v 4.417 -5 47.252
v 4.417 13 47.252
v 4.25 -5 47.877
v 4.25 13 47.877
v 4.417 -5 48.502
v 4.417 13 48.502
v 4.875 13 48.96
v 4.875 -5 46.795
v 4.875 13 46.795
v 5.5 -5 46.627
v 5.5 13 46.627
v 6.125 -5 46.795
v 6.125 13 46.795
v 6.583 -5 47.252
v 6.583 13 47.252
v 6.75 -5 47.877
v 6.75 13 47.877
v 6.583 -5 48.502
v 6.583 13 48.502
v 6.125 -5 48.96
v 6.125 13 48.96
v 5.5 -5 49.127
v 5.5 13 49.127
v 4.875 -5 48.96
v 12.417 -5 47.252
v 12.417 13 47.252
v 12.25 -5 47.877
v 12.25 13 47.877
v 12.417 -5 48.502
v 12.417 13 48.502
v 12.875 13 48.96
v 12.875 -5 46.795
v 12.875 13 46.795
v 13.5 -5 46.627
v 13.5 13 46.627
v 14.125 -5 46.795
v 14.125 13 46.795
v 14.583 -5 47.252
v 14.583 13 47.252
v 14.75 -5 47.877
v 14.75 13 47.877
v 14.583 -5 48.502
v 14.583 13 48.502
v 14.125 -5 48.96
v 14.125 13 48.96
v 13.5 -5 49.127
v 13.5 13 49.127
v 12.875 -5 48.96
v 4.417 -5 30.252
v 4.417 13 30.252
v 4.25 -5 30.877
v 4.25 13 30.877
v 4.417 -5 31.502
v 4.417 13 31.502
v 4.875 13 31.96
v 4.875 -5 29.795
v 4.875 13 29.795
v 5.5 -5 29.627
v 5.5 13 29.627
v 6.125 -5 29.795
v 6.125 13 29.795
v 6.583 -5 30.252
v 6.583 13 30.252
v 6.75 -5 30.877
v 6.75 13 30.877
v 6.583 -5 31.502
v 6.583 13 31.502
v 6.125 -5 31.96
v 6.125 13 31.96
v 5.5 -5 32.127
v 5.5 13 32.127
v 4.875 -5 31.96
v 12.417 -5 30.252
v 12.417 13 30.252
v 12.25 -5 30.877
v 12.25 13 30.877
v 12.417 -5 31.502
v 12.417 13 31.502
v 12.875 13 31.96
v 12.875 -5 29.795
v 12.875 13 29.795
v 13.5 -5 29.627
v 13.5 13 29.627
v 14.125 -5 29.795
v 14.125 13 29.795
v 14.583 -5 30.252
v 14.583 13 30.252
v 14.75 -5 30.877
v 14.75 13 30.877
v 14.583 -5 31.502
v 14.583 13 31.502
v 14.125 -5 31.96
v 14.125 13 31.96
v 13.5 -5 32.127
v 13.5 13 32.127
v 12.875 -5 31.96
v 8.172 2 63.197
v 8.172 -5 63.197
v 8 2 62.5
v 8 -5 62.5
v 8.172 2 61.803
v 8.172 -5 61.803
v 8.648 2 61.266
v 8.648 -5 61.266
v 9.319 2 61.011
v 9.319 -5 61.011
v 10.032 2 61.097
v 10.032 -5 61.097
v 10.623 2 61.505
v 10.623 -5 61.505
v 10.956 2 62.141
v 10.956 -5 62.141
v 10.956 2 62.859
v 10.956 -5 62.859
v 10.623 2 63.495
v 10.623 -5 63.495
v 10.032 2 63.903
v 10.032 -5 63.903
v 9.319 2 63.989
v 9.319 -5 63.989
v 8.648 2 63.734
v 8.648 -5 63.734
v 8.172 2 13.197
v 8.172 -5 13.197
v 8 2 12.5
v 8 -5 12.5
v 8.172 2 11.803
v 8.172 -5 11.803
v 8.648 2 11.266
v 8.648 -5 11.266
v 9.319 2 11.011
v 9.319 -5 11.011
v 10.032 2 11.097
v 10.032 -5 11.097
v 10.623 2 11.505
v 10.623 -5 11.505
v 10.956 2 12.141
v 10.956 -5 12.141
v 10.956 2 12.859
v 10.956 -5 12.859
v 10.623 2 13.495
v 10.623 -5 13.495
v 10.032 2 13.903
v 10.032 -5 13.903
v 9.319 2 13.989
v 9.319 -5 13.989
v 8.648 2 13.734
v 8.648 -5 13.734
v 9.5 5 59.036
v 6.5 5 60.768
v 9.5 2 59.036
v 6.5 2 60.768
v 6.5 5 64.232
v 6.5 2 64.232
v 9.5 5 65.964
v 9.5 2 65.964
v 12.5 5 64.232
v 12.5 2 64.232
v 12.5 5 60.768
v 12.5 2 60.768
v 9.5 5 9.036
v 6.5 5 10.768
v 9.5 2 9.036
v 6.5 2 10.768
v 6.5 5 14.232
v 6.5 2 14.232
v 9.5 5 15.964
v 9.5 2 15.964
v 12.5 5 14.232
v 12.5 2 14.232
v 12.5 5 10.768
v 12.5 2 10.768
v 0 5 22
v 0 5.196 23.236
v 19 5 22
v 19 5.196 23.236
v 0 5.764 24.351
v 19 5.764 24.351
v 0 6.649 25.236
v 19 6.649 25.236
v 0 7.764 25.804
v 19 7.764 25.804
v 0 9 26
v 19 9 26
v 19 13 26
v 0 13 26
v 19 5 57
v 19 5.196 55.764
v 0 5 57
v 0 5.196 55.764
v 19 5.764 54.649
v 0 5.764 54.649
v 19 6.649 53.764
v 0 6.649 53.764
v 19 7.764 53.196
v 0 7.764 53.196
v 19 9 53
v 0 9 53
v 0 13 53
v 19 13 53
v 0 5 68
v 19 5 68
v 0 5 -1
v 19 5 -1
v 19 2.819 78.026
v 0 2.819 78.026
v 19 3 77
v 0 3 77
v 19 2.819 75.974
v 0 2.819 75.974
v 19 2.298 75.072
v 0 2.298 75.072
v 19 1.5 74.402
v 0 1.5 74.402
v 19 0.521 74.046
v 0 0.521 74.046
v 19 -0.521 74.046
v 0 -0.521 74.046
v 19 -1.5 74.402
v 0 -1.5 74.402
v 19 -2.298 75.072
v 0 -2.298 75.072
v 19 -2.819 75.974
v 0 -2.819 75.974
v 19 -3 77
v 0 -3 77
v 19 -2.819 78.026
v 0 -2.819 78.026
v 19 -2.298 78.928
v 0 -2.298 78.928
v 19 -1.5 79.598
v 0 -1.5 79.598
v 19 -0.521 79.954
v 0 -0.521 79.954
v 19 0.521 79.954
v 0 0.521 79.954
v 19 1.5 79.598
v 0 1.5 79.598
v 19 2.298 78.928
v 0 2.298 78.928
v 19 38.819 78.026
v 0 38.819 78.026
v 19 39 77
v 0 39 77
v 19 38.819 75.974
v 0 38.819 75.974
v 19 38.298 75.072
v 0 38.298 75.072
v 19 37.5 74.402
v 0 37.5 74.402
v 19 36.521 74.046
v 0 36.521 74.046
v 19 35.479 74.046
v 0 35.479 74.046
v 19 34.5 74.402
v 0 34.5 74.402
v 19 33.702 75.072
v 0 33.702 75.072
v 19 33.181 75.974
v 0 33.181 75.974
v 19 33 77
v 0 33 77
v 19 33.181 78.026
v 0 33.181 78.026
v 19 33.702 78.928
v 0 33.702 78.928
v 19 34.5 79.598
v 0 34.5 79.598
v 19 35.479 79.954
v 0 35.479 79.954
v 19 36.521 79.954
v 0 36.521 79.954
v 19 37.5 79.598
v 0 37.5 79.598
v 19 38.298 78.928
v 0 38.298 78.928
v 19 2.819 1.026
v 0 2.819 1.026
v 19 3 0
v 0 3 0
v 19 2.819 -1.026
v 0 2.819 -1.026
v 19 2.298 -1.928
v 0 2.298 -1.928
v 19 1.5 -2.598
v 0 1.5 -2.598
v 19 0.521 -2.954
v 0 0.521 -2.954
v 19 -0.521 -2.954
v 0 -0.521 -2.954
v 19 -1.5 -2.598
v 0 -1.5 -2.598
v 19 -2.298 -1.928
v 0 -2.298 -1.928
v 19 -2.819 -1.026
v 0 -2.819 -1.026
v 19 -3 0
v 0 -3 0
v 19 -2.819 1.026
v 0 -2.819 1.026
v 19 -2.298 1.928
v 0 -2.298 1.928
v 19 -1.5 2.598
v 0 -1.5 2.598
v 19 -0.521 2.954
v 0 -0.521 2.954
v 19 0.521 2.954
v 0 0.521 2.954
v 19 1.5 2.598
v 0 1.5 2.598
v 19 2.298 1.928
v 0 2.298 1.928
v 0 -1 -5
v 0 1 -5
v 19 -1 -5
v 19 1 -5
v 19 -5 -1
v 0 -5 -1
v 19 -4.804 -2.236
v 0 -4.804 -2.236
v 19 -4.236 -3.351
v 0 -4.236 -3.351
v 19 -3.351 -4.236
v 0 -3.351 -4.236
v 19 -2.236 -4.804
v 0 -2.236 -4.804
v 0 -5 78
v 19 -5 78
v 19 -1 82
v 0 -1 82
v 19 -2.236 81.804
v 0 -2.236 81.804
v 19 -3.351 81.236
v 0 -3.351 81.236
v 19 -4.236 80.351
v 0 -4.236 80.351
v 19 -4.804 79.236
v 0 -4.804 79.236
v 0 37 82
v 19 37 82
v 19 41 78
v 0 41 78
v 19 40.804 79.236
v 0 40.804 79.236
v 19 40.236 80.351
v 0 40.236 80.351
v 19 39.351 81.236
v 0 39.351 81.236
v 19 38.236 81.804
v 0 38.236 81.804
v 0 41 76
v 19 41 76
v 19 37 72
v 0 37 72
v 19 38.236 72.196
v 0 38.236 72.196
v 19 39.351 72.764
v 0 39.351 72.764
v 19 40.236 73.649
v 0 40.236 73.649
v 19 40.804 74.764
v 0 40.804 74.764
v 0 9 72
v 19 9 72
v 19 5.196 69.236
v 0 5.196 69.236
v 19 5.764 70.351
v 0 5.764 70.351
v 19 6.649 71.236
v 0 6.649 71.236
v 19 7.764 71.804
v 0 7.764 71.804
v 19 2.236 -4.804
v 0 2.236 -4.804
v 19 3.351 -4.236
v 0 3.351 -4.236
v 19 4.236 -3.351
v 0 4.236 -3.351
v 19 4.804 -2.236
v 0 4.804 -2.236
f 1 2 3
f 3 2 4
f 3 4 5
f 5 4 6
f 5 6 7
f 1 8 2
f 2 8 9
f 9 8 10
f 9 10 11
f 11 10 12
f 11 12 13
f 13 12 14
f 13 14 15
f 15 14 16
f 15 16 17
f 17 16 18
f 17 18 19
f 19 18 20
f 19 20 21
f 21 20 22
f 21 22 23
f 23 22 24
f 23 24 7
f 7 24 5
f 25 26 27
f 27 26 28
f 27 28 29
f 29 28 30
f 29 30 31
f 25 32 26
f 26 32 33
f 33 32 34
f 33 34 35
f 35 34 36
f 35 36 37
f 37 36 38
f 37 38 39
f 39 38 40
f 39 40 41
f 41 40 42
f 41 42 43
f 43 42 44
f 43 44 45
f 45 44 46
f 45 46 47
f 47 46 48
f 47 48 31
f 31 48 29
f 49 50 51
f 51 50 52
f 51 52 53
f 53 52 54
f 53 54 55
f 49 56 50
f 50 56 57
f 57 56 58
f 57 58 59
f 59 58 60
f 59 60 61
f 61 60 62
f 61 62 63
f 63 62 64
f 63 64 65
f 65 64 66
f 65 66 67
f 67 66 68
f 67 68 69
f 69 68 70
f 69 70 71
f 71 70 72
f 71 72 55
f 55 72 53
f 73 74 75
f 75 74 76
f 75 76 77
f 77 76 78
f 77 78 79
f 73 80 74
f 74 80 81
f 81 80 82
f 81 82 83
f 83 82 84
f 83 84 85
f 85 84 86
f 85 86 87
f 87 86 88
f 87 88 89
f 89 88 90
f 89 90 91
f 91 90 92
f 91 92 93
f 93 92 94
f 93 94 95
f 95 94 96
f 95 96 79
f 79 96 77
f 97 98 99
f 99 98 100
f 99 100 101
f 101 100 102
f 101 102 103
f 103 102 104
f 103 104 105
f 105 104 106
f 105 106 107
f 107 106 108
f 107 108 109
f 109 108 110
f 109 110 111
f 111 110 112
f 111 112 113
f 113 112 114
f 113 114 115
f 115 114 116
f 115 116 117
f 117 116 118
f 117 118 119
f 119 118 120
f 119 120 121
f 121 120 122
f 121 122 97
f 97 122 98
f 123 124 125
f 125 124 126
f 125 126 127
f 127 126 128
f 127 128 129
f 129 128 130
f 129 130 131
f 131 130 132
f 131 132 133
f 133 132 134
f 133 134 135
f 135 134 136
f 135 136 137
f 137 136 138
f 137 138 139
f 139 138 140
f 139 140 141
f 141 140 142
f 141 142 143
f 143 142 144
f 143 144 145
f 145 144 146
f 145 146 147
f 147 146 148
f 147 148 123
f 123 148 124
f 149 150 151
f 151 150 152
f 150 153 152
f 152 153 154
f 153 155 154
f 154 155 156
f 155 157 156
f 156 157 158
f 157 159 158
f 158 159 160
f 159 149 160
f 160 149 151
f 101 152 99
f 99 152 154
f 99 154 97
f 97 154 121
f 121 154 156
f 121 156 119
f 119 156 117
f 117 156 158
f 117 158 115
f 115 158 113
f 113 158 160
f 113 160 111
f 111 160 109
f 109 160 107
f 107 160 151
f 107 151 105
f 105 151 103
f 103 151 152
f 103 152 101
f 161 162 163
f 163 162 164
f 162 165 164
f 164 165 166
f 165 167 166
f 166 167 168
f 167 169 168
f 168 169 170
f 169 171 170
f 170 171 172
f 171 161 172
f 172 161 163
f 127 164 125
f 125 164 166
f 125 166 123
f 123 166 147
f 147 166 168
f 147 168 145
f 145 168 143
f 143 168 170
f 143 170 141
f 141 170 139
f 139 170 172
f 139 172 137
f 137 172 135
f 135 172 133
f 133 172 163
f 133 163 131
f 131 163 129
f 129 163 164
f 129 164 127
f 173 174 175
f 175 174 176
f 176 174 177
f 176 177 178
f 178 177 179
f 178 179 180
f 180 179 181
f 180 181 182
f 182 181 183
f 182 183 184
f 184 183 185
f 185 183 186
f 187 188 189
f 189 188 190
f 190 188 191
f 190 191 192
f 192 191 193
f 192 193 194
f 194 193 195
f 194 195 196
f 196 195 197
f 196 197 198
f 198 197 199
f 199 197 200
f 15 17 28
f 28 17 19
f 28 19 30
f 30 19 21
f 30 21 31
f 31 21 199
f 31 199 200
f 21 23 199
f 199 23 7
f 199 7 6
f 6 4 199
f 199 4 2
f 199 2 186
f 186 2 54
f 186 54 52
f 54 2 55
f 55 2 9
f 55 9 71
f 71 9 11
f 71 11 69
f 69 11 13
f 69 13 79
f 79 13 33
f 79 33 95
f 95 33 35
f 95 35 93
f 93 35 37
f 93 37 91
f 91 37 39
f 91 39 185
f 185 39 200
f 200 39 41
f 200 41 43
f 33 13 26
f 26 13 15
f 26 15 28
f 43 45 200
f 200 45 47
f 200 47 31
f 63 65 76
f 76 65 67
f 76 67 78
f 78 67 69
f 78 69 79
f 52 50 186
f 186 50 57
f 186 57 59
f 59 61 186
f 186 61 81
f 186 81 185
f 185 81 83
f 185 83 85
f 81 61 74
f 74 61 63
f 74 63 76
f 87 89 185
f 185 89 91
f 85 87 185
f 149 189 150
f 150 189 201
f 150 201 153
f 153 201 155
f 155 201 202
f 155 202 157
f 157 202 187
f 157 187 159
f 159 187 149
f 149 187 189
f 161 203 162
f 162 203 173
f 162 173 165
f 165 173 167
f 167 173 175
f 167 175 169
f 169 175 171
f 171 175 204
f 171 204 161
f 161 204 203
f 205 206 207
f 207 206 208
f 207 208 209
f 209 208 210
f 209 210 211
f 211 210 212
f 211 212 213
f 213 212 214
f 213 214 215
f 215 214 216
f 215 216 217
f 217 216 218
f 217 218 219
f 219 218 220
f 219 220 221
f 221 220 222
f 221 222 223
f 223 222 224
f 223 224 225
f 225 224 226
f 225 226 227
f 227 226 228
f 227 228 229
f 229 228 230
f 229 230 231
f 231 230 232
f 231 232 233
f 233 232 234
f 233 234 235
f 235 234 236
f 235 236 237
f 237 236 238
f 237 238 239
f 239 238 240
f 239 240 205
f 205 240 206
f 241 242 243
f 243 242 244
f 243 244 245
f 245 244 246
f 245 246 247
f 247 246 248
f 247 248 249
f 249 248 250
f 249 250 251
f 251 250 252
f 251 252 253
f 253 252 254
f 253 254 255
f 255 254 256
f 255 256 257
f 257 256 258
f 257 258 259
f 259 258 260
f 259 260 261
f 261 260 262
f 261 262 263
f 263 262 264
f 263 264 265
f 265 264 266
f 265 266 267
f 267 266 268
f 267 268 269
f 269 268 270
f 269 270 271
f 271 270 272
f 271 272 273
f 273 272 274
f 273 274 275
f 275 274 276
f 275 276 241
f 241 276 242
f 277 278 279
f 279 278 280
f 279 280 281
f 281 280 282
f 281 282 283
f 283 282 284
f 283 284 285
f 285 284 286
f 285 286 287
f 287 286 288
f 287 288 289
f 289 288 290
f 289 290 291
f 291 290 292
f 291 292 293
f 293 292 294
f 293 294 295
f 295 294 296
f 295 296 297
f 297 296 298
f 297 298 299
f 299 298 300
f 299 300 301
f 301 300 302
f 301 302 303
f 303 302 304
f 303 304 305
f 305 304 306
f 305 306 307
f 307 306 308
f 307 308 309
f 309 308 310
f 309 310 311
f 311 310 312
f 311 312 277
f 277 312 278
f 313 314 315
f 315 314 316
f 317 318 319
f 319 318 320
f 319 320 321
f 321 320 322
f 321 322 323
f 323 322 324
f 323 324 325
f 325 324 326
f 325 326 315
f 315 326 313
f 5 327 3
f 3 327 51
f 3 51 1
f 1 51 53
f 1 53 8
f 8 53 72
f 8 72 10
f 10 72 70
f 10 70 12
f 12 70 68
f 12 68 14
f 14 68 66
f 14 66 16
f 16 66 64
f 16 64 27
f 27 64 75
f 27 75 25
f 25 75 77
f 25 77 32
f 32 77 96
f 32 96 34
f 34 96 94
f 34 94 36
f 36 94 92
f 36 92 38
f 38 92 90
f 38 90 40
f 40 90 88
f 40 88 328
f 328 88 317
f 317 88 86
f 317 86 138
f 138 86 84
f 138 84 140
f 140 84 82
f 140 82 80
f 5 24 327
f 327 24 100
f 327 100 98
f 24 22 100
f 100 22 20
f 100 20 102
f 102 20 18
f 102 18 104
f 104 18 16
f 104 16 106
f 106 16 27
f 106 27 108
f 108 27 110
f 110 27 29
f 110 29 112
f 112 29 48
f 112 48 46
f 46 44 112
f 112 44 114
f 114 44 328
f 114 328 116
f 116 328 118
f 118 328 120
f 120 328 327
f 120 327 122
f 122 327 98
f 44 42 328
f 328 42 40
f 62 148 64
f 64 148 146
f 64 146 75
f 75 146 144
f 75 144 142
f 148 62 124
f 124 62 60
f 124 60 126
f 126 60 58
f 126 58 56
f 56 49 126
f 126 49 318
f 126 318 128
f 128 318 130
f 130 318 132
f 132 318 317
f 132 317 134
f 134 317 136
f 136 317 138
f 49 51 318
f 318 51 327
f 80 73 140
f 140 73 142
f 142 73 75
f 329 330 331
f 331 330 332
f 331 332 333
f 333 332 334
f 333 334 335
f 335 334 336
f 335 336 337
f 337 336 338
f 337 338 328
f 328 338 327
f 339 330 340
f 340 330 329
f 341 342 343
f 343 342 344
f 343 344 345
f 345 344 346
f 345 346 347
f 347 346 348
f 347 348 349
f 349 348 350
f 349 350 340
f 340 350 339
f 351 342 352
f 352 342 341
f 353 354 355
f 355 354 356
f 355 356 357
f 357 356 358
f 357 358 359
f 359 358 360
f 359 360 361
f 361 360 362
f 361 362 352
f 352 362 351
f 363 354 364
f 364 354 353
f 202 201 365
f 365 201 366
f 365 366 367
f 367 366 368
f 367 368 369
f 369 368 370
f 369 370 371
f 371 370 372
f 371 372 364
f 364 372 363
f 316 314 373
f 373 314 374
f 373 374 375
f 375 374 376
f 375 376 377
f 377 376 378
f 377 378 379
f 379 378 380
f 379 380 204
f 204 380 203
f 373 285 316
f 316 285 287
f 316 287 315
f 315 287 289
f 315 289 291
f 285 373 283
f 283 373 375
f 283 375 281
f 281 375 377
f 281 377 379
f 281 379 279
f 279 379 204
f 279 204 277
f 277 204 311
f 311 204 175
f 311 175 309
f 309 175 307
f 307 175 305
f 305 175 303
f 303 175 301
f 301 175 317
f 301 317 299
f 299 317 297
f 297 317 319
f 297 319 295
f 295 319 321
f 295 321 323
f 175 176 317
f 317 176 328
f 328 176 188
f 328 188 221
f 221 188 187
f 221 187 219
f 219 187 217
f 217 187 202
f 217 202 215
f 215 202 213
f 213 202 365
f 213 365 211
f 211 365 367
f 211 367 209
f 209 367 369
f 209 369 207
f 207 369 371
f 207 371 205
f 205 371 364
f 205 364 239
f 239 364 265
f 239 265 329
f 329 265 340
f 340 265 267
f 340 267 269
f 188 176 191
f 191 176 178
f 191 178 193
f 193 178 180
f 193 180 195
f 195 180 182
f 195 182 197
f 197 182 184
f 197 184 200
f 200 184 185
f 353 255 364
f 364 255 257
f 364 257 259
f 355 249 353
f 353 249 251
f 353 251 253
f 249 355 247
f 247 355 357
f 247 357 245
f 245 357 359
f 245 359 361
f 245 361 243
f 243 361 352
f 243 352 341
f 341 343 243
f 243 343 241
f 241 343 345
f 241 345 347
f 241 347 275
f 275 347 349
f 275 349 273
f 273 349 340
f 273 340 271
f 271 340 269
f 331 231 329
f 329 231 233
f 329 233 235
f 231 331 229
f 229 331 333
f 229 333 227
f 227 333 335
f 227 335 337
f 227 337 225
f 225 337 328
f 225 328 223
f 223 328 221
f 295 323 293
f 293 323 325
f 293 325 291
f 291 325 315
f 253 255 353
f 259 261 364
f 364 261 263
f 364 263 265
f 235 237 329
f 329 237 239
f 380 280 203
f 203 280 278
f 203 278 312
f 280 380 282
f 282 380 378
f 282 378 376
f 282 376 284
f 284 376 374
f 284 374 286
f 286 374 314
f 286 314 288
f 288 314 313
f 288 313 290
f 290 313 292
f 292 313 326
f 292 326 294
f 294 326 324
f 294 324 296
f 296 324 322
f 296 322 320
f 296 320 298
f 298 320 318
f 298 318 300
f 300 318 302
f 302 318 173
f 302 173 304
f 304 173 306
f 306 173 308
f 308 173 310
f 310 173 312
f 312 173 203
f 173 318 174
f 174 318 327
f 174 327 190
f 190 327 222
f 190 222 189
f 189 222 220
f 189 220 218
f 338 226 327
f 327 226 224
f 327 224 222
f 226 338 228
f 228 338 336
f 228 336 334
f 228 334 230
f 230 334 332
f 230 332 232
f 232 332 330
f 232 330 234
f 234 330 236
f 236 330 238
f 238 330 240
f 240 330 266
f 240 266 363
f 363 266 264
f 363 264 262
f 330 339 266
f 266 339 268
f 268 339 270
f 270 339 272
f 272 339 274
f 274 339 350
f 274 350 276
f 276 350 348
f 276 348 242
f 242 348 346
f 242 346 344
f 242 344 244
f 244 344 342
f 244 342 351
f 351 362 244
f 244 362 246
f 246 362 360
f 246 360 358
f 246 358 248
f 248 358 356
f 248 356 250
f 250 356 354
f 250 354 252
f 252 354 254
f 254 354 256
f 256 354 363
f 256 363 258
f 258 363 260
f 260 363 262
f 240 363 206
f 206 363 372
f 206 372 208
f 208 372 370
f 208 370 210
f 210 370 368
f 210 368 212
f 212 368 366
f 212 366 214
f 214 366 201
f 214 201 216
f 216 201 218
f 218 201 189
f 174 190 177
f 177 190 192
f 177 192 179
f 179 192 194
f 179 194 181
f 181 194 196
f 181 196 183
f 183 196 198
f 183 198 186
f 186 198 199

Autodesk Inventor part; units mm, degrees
ref_plane "YZ Plane" through (0, 0, 0) normal (1, 0, 0) x (0, 1, 0)
ref_plane "XZ Plane" through (0, 0, 0) normal (0, 1, 0) x (-1, 0, 0)
ref_plane "XY Plane" through (0, 0, 0) normal (0, 0, 1) x (1, 0, 0)
sketch "Sketch1" plane through (0, 0, 0) normal (1, 0, 0) x (0, 1, 0)
  circle A0 centre (0, 0) radius 3
  circle A1 centre (0, 77) radius 3
  circle A2 centre (36, 77) radius 3
  line L0 (-5, 78) -> (-5, -1)
  line L1 (-1, 82) -> (37, 82)
  line L2 (41, 78) -> (41, 76)
  line L3 (37, 72) -> (9, 72)
  line L4 (5, 68) -> (5, -1)
  line L5 (36, 77) -> (41, 77)
  line L6 (0, 0) -> (0, -5)
  line L7 (0, -5) -> (1, -5)
  line L8 (-1, -5) -> (0, -5)
  arc A3 (-1, 82) -> (-5, 78) centre (-1, 78) ccw
  arc A4 (-5, -1) -> (-1, -5) centre (-1, -1) ccw
  arc A5 (1, -5) -> (5, -1) centre (1, -1) ccw
  arc A6 (9, 72) -> (5, 68) centre (9, 68) ccw
  arc A7 (37, 72) -> (41, 76) centre (37, 76) ccw
  arc A8 (41, 78) -> (37, 82) centre (37, 78) ccw
  dimension "d0" = 6
  dimension "d1" = 77
  dimension "d3" = 10
  dimension "d4" = 5
  dimension "d5" = 4
  dimension "d6" = 10
  dimension "d9" = 46
extrude "Extrusion1" add sketch "Sketch1" along normal blind 19
sketch "Sketch3" plane through (0, 5, -1) normal (0, 1, 0) x (1, 0, 0)
  line L0 (19, 0) -> (19, -69) projected
  line L1 (19, -27) -> (0, -27)
  line L2 (0, -27) -> (0, -54)
  line L3 (0, -54) -> (19, -54)
  line L4 (19, -54) -> (19, -27)
  line L5 (0, 4) -> (19, 4) projected
  line L6 (0, -83) -> (19, -83) projected
  line L7 (0, 0) -> (0, -69) projected
  point P0 (0, -1)
  point P1 (19, -54)
  dimension "d15" = 31
  dimension "d16" = 29
extrude "Extrusion3" add sketch "Sketch3" along normal blind 8
fillet "Fillet1" radius 4 2 edges at (9.5, 5, 53) (9.5, 5, 26)
sketch "Sketch4" plane through (0, 5, -1) normal (0, 1, 0) x (1, 0, 0)
  line L0 (12.5, -15.2321) -> (9.5, -16.9641)
  line L1 (9.5, -16.9641) -> (6.5, -15.2321)
  line L2 (6.5, -15.2321) -> (6.5, -11.7679)
  line L3 (6.5, -11.7679) -> (9.5, -10.0359)
  line L4 (9.5, -10.0359) -> (12.5, -11.7679)
  line L5 (12.5, -11.7679) -> (12.5, -15.2321)
  line L6 (12.5, -65.2321) -> (9.5, -66.9641)
  line L7 (9.5, -66.9641) -> (6.5, -65.2321)
  line L8 (6.5, -65.2321) -> (6.5, -61.7679)
  line L9 (6.5, -61.7679) -> (9.5, -60.0359)
  line L10 (9.5, -60.0359) -> (12.5, -61.7679)
  line L11 (12.5, -61.7679) -> (12.5, -65.2321)
  line L12 (19, -58) -> (19, -69) projected
  line L13 (19, 0) -> (19, -23) projected
  line L14 (19, -23) -> (0, -23) projected
  line L15 (19, -27) -> (0, -27) projected
  line L16 (0, -54) -> (19, -54) projected
  circle A0 centre (9.5, -13.5) radius 1.5
  circle A1 centre (9.5, -63.5) radius 1.5
  point P0 (0, -1)
  point P1 (9.5, -23)
  dimension "d20" = 6
  dimension "d23" = 9.5
  dimension "d26" = 3
  dimension "d29" = 50
extrude "Extrusion4" cut sketch "Sketch4" against normal blind 3 contours L0 L1 L2 L3 L4 L5 | L6 L7 L8 L9 L10 L11 | A0 | A1
extrude "Extrusion5" cut sketch "Sketch4" against normal through all contours A0 | A1
sketch "Sketch5" plane through (0, 13, -1) normal (0, 1, 0) x (1, 0, 0)
  circle A0 centre (5.5, -31.8771) radius 1.25
  circle A1 centre (5.5, -48.8771) radius 1.25
  circle A2 centre (13.5, -31.8771) radius 1.25
  circle A3 centre (13.5, -48.8771) radius 1.25
  line L0 (19, -54) -> (19, -27) projected
  line L1 (0, -27) -> (0, -54) projected
  point P0 (0, -1)
  dimension "d30" = 2.5
  dimension "d31" = 17
  dimension "d32" = 5.5
  dimension "d33" = 5.5
extrude "Extrusion6" cut sketch "Sketch5" against normal through all
equation "\"d33\" = d32"
properties part number "wheel_mount"
